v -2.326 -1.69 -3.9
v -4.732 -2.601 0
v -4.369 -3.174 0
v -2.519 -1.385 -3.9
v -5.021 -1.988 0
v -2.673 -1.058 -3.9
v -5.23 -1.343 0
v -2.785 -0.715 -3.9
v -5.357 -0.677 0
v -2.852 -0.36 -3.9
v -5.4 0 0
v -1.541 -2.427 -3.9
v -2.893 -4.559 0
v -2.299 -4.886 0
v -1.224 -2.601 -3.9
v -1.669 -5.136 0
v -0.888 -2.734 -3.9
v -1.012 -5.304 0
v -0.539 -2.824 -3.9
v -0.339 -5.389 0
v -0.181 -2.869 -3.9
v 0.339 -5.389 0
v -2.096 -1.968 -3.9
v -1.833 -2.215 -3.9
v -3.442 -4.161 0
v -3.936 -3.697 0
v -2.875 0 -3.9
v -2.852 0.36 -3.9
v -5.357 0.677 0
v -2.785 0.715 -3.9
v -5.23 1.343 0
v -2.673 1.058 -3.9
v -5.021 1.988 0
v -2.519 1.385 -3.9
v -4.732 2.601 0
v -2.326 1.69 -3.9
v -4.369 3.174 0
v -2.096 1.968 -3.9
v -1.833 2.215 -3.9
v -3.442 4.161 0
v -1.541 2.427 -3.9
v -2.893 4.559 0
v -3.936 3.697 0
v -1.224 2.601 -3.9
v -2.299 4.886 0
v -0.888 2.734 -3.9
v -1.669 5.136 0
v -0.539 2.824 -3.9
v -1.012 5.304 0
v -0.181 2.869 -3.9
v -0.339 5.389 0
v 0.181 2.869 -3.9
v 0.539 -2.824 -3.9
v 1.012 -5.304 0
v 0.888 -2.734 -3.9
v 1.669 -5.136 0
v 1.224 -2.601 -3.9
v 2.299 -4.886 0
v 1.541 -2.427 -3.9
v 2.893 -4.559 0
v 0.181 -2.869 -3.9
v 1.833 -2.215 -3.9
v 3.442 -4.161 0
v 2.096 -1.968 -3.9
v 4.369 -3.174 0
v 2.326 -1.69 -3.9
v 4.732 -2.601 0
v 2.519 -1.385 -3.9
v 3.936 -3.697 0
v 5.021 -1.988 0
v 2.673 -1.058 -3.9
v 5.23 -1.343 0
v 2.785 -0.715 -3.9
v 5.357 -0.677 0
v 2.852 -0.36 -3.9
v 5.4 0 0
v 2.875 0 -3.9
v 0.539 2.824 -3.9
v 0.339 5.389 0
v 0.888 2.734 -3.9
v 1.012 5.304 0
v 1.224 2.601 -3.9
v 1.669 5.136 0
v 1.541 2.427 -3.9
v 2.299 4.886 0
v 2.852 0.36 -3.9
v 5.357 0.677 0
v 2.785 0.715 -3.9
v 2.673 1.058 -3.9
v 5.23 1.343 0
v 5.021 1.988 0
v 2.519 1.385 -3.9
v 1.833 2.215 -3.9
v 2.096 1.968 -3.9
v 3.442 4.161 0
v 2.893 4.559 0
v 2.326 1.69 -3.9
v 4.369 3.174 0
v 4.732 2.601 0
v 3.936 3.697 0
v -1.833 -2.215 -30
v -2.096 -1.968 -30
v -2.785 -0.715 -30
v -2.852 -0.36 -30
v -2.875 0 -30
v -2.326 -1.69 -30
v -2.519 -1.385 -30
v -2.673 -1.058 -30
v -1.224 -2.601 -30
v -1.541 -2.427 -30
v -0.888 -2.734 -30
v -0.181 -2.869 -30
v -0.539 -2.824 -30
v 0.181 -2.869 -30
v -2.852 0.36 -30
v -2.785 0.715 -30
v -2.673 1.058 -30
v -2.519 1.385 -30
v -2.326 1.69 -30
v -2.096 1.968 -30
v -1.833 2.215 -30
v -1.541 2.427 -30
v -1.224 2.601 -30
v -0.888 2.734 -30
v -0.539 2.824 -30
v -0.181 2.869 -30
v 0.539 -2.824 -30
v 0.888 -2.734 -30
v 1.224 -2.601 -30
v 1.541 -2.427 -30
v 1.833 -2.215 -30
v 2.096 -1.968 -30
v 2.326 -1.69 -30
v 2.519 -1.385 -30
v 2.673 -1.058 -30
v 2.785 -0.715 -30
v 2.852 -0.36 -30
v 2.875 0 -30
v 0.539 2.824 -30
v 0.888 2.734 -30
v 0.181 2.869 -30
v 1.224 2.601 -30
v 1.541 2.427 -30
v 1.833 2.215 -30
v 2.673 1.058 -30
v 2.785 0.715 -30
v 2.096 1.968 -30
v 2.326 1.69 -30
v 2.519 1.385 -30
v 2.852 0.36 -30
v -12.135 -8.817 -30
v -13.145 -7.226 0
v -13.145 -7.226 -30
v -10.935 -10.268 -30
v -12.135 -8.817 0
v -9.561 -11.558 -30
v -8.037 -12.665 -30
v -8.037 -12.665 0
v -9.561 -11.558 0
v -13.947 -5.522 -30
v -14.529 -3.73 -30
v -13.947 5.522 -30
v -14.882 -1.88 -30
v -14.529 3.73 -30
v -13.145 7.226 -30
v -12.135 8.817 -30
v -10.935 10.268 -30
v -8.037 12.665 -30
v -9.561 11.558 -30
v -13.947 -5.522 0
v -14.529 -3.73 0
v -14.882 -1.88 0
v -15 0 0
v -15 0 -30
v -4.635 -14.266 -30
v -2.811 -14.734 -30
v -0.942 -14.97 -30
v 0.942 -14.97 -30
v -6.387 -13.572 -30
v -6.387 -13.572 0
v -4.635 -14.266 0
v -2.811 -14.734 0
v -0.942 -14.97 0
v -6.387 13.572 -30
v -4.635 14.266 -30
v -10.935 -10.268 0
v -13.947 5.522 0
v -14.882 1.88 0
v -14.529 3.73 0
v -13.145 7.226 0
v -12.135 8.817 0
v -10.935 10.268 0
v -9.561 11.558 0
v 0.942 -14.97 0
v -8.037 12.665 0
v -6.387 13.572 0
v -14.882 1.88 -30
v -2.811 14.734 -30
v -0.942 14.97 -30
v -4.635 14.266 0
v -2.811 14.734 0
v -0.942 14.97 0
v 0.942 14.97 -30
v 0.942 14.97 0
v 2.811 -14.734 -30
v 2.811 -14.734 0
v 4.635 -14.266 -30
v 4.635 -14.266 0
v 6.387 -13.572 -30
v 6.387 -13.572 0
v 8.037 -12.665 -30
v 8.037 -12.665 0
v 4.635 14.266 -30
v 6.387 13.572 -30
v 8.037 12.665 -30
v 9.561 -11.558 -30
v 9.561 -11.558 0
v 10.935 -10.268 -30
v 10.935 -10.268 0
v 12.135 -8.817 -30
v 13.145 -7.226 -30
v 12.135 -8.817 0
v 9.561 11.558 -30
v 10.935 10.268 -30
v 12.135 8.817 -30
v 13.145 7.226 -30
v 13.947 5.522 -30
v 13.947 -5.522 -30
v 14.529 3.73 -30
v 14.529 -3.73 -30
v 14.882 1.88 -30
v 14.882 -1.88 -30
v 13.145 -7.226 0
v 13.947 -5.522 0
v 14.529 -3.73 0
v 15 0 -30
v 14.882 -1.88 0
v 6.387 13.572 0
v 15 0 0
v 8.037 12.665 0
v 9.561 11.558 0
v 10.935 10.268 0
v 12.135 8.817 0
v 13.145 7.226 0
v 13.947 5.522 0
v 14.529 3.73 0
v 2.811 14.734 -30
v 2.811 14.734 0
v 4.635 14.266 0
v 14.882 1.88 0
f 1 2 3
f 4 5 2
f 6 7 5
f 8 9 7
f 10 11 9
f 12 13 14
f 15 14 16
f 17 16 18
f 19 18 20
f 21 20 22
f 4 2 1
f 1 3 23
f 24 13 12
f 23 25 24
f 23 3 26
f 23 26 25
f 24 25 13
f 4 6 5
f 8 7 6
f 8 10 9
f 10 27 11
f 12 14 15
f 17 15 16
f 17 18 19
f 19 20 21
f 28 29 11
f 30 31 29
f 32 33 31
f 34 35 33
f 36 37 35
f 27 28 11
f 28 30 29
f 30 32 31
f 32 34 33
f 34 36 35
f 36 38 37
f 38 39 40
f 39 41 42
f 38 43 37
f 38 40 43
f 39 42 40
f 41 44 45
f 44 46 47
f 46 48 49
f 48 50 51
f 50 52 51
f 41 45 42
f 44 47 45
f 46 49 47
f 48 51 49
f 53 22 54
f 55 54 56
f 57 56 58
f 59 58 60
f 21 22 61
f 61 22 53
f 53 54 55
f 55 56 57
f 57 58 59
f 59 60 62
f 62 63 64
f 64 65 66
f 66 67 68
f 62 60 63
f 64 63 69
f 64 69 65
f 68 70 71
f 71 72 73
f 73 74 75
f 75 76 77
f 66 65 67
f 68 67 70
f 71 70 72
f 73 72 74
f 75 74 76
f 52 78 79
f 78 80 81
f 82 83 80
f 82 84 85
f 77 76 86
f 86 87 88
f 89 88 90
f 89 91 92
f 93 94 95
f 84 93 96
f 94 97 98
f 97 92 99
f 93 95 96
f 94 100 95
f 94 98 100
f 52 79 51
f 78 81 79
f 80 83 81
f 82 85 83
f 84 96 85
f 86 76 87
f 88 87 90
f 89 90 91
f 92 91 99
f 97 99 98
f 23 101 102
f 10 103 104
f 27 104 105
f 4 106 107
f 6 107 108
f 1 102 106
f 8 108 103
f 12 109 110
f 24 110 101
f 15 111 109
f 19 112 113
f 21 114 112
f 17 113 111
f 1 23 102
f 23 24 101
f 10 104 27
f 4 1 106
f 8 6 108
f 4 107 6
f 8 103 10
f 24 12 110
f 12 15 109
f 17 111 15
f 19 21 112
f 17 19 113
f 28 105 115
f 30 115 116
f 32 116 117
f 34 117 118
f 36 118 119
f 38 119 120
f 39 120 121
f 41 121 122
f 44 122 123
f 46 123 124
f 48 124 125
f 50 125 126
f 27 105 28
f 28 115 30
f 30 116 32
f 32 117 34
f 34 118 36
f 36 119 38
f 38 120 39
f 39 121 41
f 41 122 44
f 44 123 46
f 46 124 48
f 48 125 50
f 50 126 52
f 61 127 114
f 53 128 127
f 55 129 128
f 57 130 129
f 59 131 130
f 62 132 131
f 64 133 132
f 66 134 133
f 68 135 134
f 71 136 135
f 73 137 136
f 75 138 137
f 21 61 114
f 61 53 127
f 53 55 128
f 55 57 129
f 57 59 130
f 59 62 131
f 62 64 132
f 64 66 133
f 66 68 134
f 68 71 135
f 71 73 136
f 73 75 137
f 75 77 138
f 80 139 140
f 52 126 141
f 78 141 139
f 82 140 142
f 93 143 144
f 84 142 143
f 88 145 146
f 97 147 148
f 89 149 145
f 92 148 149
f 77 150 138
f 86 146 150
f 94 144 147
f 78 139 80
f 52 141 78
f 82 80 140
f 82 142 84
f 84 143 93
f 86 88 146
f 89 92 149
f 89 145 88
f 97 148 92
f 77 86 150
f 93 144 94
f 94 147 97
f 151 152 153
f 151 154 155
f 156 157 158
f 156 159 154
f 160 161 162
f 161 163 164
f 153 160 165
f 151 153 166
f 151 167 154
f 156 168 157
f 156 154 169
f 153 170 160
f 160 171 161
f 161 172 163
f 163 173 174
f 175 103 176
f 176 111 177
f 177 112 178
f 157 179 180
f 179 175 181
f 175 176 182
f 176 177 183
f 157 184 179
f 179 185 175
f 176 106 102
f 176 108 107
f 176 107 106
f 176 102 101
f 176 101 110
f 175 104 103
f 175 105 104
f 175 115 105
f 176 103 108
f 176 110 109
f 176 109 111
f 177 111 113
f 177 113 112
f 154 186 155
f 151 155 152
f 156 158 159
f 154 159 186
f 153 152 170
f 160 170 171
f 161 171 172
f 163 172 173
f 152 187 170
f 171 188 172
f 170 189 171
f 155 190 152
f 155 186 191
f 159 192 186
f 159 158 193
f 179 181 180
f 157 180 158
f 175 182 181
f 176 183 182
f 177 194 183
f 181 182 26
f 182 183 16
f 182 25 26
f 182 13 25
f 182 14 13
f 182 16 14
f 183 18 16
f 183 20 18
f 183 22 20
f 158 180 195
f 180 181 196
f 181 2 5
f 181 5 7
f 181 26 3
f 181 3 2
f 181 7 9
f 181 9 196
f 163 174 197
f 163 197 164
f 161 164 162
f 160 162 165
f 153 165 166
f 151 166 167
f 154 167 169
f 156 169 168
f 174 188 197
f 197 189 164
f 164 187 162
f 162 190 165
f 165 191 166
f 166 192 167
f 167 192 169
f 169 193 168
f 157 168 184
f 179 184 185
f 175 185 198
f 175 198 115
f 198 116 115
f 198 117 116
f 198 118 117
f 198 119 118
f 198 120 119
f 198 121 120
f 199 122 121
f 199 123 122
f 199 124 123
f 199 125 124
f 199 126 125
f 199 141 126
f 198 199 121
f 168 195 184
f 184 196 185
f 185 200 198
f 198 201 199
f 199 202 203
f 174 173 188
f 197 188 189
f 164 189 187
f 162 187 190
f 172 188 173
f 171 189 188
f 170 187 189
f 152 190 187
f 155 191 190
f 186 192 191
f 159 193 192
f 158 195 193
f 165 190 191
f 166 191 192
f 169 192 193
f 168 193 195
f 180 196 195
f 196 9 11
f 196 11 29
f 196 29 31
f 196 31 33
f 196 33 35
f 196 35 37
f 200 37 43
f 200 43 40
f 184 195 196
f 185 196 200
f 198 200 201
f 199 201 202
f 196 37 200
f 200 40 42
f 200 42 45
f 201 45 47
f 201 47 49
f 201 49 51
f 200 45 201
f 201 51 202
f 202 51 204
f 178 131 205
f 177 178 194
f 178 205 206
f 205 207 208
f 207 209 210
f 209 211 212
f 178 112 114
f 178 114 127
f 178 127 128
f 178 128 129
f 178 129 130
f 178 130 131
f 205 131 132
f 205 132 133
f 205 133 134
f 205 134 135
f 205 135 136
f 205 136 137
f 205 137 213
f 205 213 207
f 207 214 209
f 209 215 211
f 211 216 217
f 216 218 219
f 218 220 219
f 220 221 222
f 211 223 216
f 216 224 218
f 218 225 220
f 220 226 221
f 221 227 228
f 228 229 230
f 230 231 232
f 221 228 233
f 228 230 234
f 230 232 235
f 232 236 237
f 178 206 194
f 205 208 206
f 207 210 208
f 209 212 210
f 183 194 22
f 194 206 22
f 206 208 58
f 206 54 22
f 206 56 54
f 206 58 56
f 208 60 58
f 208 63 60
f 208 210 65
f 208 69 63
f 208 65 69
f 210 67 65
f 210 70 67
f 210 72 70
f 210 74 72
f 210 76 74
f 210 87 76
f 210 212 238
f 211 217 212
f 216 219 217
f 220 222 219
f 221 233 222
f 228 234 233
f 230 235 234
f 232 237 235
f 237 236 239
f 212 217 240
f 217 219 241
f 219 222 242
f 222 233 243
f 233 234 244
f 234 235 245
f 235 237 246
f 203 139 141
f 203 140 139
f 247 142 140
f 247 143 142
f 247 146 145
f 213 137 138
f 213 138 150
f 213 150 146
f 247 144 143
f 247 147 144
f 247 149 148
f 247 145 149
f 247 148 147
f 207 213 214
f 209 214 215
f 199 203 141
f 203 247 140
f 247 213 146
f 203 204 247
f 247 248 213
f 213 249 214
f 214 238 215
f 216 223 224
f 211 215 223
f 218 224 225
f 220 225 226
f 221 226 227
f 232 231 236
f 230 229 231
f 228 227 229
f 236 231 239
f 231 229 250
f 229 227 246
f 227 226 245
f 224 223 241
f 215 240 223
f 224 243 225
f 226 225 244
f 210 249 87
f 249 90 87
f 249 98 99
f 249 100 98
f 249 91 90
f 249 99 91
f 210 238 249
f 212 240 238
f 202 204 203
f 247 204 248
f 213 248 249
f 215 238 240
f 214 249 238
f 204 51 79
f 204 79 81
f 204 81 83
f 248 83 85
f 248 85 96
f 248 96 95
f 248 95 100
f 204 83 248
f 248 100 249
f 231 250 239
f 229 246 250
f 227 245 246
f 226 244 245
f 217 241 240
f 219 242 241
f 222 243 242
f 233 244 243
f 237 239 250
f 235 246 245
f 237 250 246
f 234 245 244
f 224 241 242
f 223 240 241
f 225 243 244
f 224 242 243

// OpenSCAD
$fn = 50;

difference() {
	union() {
		translate(v = [0, 0, -30.0]) {
			cylinder(h = 30, r = 15.0);
		}
		#translate(v = [0, 0, -33.0]) {
			cylinder(h = 33, r = 2.875);
		}
	}
	union() {
		translate(v = [0, 0, 0]) {
			rotate(a = [0, 0, 0]) {
				difference() {
					union() {
						translate(v = [0, 0, -33.0]) {
							cylinder(h = 33, r = 2.6);
						}
						translate(v = [0, 0, -3.9]) {
							cylinder(h = 3.9, r1 = 2.875, r2 = 5.4);
						}
						translate(v = [0, 0, -33.0]) {
							cylinder(h = 33, r = 2.875);
						}
						translate(v = [0, 0, -33.0]) {
							cylinder(h = 33, r = 2.6);
						}
					}
					union();
				}
			}
		}
	}
}
